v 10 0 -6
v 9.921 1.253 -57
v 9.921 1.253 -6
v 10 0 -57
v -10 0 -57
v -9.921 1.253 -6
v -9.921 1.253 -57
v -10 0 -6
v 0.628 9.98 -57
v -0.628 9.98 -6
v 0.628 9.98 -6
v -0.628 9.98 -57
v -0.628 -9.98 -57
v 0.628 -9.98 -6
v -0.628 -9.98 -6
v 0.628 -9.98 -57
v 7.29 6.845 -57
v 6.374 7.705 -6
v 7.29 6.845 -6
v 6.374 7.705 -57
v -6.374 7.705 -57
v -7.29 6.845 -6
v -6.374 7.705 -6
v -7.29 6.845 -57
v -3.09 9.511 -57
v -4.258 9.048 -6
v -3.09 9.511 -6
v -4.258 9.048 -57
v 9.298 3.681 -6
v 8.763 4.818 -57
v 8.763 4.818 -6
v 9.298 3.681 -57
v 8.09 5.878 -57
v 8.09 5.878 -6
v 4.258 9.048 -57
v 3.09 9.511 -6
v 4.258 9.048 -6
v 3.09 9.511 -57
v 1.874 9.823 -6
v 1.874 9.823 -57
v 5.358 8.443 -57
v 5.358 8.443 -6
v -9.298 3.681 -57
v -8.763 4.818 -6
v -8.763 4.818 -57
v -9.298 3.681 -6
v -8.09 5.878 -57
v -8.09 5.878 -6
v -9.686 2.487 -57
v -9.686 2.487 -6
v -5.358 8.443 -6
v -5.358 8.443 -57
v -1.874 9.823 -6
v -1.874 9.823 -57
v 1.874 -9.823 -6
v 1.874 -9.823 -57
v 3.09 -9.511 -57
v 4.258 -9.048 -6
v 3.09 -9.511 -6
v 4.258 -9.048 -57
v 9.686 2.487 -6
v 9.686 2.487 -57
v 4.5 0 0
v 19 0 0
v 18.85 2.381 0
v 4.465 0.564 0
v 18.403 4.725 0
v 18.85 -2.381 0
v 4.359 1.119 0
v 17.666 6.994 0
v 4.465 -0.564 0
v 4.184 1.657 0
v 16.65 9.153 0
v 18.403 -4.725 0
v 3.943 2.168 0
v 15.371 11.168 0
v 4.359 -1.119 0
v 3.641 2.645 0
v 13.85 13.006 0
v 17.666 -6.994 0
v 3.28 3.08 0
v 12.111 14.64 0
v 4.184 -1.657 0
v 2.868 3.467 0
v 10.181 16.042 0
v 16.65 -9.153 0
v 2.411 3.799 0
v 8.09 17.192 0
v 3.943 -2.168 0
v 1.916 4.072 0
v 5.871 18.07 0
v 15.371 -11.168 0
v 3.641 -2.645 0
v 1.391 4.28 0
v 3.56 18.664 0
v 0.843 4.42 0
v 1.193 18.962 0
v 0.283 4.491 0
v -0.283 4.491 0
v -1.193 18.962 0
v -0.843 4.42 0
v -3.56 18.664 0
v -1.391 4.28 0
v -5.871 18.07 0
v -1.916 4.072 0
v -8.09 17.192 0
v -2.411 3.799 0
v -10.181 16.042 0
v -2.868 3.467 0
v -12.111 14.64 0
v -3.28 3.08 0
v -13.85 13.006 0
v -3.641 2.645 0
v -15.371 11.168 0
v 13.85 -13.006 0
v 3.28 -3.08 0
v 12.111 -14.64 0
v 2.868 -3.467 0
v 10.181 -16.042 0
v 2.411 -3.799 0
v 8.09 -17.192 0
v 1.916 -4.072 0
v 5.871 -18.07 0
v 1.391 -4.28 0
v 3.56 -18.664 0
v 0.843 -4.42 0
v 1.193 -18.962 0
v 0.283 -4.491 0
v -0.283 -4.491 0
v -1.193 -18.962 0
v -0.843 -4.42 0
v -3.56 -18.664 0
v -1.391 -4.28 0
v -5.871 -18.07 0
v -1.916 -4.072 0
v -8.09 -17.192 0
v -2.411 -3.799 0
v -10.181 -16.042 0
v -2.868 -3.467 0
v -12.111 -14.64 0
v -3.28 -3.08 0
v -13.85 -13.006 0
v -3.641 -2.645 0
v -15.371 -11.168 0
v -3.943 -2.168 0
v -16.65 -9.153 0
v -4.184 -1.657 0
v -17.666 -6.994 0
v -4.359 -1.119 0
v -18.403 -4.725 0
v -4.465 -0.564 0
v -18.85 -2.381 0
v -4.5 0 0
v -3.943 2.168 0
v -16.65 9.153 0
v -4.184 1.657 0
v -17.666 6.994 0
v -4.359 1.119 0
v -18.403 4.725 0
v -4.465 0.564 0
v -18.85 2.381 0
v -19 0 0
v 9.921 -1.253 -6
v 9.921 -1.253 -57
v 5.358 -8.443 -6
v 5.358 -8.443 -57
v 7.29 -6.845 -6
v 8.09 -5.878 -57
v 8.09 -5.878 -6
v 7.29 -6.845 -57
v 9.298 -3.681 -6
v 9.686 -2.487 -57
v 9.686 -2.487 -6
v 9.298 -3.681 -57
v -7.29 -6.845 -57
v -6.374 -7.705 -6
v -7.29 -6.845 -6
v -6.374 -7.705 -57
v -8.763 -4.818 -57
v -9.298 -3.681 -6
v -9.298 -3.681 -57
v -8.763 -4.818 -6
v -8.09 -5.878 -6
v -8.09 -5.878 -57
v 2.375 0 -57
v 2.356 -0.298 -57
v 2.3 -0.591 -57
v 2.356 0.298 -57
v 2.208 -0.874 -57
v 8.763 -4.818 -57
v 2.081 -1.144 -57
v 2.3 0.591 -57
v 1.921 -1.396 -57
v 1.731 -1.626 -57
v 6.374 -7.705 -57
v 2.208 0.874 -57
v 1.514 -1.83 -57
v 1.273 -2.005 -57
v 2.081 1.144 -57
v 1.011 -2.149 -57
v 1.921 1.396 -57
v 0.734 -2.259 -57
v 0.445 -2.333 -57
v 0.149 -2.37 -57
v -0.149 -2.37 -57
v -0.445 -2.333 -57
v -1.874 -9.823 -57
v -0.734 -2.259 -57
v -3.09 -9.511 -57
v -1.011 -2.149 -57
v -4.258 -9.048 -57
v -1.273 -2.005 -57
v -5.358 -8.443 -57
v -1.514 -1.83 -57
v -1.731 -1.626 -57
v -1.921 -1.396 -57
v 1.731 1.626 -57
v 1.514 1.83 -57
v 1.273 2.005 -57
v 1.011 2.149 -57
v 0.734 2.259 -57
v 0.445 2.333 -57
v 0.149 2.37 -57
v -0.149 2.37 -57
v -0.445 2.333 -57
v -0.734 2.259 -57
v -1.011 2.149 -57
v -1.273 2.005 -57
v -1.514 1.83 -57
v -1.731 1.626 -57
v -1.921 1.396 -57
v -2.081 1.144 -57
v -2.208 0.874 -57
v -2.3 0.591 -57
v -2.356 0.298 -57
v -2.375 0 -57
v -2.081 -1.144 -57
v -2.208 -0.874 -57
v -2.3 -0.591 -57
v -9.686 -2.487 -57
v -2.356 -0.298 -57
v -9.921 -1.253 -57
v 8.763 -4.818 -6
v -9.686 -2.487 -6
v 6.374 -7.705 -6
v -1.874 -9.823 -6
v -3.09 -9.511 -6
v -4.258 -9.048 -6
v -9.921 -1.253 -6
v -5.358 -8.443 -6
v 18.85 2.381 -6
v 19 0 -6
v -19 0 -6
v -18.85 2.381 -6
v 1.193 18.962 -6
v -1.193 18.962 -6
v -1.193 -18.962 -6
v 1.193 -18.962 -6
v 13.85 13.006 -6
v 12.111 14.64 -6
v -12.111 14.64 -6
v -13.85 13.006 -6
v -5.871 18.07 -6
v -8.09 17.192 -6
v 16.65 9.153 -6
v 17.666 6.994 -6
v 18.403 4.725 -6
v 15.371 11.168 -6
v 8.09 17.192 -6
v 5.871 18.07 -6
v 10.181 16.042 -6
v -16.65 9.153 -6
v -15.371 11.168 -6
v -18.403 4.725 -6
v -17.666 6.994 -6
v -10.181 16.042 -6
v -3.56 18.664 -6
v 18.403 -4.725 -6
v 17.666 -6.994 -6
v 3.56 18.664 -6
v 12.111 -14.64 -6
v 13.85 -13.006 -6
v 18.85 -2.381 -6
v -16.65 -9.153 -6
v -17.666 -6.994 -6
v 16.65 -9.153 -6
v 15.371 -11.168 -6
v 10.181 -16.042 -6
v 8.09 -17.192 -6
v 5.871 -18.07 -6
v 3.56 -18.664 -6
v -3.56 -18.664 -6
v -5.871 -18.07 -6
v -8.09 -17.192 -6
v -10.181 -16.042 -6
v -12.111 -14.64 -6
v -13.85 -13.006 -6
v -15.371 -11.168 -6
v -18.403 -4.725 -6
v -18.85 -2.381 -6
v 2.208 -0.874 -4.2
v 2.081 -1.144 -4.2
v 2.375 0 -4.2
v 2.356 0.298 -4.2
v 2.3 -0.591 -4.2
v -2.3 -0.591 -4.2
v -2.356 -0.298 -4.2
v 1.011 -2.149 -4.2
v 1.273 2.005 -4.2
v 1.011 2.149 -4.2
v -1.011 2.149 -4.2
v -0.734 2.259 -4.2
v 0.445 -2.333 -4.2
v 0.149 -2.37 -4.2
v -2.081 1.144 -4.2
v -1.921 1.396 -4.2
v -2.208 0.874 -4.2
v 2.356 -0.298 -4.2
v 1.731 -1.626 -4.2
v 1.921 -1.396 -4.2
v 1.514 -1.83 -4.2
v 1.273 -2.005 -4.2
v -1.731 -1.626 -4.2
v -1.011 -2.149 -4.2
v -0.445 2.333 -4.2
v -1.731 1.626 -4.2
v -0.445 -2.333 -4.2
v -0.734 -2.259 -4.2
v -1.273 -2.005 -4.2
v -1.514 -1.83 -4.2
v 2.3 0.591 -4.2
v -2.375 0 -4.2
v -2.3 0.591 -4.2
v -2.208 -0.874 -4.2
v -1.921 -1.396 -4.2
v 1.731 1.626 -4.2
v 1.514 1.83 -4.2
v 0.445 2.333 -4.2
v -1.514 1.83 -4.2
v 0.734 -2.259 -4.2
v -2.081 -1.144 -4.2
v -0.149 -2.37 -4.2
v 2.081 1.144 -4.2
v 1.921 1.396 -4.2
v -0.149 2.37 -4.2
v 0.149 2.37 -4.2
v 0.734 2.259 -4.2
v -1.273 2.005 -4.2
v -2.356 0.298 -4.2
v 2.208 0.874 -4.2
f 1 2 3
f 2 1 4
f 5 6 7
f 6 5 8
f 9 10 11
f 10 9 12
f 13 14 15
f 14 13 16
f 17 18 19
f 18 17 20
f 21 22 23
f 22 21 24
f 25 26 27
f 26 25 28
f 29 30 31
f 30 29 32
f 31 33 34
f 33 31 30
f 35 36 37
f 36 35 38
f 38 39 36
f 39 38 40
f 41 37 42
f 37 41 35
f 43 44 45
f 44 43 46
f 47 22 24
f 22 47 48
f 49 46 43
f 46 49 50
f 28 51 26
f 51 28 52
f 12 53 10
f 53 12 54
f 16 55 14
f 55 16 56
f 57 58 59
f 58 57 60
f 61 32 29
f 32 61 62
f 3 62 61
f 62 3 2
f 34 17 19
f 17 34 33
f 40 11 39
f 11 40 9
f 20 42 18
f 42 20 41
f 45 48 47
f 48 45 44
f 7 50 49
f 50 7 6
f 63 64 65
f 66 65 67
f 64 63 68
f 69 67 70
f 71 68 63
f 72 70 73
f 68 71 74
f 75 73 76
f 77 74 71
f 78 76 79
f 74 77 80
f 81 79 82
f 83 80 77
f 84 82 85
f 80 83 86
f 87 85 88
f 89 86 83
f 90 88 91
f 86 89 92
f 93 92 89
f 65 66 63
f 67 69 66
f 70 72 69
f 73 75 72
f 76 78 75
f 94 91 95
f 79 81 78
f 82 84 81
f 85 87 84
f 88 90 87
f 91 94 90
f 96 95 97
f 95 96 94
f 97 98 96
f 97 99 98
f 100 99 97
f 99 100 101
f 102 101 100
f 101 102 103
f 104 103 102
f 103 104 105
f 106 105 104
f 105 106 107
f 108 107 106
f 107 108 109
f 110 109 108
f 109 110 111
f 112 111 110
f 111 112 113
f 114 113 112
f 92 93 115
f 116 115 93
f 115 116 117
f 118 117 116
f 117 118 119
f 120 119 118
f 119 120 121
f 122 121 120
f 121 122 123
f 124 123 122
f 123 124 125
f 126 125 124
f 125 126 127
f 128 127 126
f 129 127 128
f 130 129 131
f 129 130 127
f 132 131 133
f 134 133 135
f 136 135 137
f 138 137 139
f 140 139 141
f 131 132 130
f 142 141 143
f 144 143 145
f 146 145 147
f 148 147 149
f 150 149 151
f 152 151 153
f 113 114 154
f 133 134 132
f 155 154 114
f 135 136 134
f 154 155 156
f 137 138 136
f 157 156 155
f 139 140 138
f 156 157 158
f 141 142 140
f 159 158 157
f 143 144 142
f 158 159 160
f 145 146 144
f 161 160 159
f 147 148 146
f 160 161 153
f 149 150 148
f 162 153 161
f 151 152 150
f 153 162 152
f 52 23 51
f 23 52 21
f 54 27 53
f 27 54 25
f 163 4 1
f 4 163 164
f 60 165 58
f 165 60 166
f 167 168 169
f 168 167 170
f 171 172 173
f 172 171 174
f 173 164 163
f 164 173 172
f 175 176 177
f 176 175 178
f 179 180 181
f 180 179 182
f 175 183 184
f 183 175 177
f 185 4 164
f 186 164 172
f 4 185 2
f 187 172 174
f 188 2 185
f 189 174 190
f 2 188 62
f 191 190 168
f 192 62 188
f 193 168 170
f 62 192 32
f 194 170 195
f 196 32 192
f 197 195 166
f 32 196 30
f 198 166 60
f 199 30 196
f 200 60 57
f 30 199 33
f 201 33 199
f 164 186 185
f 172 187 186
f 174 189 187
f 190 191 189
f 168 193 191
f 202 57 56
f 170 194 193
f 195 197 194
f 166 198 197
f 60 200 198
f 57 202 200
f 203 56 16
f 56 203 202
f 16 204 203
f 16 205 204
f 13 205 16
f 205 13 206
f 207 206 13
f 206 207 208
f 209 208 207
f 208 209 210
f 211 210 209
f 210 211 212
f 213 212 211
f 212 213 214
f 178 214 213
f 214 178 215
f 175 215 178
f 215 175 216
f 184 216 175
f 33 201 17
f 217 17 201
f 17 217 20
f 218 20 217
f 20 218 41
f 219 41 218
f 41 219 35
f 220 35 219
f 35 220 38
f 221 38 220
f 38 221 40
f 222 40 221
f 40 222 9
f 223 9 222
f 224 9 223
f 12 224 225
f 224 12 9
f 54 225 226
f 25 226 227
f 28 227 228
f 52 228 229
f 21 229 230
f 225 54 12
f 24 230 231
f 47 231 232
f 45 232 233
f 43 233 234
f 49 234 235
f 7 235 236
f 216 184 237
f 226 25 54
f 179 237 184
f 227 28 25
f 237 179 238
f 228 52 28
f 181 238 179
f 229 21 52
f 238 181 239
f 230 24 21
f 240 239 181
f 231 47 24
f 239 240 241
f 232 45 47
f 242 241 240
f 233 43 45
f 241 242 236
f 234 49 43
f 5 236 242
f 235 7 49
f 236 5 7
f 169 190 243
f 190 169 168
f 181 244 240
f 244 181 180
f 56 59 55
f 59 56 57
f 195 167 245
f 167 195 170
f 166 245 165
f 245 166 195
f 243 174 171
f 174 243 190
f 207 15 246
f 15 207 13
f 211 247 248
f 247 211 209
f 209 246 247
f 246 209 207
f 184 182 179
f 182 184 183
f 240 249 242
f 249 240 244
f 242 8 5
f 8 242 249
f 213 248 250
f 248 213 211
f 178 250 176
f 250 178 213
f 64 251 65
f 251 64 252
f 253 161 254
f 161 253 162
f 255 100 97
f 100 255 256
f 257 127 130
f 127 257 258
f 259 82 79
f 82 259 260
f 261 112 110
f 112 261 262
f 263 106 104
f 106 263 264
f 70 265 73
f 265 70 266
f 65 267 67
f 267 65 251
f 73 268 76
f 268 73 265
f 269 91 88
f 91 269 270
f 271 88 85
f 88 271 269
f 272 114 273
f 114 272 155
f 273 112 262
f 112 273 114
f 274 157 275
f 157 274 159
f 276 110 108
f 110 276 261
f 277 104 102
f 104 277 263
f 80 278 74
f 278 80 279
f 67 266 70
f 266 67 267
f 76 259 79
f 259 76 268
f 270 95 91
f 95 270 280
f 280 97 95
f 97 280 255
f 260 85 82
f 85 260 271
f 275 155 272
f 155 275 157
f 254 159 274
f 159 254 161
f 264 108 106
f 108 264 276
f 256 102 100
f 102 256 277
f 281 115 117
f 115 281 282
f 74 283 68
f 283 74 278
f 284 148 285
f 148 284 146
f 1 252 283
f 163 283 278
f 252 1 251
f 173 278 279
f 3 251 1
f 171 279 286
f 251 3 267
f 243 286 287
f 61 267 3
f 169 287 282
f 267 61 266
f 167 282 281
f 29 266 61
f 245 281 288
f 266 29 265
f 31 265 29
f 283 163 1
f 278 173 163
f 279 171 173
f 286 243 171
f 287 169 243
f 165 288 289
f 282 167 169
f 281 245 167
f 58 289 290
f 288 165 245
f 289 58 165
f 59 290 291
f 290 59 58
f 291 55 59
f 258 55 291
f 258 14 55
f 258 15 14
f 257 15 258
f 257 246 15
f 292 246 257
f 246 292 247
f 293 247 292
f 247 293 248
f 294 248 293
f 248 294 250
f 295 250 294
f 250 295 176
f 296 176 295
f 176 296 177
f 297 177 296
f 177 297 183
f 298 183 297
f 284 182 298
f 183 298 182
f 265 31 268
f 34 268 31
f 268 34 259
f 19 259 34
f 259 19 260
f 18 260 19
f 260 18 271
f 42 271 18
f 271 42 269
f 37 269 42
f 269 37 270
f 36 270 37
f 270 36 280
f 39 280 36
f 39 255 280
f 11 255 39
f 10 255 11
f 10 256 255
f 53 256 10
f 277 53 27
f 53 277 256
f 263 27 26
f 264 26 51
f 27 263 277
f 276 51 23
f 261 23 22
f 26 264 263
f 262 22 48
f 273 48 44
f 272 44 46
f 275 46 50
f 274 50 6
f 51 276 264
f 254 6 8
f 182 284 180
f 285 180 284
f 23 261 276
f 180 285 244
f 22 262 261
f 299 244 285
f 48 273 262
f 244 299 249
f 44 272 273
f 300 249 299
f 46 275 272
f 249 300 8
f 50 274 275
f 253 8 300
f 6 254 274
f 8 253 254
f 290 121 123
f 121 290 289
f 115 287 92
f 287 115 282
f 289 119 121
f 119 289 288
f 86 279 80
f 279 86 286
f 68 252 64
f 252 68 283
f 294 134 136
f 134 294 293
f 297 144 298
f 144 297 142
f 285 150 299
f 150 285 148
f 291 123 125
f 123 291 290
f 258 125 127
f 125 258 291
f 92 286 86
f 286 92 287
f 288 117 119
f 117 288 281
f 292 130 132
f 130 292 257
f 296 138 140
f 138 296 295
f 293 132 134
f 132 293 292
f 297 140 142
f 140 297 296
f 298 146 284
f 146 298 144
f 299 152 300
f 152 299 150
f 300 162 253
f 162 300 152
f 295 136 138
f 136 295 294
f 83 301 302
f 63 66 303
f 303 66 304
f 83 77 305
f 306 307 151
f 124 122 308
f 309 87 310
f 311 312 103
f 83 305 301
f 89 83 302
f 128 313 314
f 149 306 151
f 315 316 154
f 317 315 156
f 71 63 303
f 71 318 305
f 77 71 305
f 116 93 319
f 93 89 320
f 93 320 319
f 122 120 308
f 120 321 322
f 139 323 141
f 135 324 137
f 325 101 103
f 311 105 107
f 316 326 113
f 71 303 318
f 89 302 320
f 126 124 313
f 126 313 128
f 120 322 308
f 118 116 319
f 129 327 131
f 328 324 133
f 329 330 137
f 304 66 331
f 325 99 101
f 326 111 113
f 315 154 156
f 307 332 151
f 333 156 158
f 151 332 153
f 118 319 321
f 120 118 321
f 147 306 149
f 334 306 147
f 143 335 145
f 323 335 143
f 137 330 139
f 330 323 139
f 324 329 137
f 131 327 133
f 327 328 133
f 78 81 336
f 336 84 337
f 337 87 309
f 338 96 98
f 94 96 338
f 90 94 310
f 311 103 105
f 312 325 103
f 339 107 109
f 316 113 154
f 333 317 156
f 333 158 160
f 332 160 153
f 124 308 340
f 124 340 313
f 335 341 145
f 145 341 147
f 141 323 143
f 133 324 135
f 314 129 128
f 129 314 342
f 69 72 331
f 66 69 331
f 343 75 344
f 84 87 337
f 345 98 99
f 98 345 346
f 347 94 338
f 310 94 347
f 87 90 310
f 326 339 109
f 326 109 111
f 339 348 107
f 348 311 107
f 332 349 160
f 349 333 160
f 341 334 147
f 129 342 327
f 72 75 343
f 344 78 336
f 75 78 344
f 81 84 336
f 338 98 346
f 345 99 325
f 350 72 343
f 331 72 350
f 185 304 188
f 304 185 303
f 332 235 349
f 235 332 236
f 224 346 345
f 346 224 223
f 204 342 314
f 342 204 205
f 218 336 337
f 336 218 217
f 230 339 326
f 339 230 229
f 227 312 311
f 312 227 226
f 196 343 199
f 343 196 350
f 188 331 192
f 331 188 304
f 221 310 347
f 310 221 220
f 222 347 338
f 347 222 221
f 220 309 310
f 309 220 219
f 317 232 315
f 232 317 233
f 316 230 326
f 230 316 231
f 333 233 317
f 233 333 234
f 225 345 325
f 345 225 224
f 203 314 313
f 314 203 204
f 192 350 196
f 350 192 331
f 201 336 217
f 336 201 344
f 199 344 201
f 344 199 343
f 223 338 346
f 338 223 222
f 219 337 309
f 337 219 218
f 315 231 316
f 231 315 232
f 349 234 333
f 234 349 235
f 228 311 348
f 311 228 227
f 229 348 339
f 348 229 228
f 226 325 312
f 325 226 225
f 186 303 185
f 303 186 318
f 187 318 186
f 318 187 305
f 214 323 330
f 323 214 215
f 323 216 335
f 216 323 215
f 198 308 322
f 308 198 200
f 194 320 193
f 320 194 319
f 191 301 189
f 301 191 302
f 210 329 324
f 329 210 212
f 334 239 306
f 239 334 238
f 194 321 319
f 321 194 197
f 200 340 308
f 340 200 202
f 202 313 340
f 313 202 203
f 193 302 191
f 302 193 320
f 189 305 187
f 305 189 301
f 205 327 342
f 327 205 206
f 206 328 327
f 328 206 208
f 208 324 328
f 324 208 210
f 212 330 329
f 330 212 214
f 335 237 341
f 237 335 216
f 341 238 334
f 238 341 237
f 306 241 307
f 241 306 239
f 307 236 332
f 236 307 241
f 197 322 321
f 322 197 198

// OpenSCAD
$fn = 50;


difference() {
	union() {
		translate(v = [0, 0, -57.0000000000]) {
			cylinder(h = 57, r = 10.0000000000);
		}
		translate(v = [0, 0, -6.0000000000]) {
			cylinder(h = 6, r = 19.0000000000);
		}
	}
	union() {
		translate(v = [0, 0, 0]) {
			rotate(a = [0, 0, 0]) {
				difference() {
					union() {
						#translate(v = [0, 0, -57.0000000000]) {
							cylinder(h = 57, r = 2.2500000000);
						}
						#translate(v = [0, 0, -4.2000000000]) {
							cylinder(h = 4.2000000000, r1 = 2.3750000000, r2 = 4.5000000000);
						}
						#translate(v = [0, 0, -57.0000000000]) {
							cylinder(h = 57, r = 2.3750000000);
						}
						#translate(v = [0, 0, -57.0000000000]) {
							cylinder(h = 57, r = 2.2500000000);
						}
					}
					union();
				}
			}
		}
	}
}
